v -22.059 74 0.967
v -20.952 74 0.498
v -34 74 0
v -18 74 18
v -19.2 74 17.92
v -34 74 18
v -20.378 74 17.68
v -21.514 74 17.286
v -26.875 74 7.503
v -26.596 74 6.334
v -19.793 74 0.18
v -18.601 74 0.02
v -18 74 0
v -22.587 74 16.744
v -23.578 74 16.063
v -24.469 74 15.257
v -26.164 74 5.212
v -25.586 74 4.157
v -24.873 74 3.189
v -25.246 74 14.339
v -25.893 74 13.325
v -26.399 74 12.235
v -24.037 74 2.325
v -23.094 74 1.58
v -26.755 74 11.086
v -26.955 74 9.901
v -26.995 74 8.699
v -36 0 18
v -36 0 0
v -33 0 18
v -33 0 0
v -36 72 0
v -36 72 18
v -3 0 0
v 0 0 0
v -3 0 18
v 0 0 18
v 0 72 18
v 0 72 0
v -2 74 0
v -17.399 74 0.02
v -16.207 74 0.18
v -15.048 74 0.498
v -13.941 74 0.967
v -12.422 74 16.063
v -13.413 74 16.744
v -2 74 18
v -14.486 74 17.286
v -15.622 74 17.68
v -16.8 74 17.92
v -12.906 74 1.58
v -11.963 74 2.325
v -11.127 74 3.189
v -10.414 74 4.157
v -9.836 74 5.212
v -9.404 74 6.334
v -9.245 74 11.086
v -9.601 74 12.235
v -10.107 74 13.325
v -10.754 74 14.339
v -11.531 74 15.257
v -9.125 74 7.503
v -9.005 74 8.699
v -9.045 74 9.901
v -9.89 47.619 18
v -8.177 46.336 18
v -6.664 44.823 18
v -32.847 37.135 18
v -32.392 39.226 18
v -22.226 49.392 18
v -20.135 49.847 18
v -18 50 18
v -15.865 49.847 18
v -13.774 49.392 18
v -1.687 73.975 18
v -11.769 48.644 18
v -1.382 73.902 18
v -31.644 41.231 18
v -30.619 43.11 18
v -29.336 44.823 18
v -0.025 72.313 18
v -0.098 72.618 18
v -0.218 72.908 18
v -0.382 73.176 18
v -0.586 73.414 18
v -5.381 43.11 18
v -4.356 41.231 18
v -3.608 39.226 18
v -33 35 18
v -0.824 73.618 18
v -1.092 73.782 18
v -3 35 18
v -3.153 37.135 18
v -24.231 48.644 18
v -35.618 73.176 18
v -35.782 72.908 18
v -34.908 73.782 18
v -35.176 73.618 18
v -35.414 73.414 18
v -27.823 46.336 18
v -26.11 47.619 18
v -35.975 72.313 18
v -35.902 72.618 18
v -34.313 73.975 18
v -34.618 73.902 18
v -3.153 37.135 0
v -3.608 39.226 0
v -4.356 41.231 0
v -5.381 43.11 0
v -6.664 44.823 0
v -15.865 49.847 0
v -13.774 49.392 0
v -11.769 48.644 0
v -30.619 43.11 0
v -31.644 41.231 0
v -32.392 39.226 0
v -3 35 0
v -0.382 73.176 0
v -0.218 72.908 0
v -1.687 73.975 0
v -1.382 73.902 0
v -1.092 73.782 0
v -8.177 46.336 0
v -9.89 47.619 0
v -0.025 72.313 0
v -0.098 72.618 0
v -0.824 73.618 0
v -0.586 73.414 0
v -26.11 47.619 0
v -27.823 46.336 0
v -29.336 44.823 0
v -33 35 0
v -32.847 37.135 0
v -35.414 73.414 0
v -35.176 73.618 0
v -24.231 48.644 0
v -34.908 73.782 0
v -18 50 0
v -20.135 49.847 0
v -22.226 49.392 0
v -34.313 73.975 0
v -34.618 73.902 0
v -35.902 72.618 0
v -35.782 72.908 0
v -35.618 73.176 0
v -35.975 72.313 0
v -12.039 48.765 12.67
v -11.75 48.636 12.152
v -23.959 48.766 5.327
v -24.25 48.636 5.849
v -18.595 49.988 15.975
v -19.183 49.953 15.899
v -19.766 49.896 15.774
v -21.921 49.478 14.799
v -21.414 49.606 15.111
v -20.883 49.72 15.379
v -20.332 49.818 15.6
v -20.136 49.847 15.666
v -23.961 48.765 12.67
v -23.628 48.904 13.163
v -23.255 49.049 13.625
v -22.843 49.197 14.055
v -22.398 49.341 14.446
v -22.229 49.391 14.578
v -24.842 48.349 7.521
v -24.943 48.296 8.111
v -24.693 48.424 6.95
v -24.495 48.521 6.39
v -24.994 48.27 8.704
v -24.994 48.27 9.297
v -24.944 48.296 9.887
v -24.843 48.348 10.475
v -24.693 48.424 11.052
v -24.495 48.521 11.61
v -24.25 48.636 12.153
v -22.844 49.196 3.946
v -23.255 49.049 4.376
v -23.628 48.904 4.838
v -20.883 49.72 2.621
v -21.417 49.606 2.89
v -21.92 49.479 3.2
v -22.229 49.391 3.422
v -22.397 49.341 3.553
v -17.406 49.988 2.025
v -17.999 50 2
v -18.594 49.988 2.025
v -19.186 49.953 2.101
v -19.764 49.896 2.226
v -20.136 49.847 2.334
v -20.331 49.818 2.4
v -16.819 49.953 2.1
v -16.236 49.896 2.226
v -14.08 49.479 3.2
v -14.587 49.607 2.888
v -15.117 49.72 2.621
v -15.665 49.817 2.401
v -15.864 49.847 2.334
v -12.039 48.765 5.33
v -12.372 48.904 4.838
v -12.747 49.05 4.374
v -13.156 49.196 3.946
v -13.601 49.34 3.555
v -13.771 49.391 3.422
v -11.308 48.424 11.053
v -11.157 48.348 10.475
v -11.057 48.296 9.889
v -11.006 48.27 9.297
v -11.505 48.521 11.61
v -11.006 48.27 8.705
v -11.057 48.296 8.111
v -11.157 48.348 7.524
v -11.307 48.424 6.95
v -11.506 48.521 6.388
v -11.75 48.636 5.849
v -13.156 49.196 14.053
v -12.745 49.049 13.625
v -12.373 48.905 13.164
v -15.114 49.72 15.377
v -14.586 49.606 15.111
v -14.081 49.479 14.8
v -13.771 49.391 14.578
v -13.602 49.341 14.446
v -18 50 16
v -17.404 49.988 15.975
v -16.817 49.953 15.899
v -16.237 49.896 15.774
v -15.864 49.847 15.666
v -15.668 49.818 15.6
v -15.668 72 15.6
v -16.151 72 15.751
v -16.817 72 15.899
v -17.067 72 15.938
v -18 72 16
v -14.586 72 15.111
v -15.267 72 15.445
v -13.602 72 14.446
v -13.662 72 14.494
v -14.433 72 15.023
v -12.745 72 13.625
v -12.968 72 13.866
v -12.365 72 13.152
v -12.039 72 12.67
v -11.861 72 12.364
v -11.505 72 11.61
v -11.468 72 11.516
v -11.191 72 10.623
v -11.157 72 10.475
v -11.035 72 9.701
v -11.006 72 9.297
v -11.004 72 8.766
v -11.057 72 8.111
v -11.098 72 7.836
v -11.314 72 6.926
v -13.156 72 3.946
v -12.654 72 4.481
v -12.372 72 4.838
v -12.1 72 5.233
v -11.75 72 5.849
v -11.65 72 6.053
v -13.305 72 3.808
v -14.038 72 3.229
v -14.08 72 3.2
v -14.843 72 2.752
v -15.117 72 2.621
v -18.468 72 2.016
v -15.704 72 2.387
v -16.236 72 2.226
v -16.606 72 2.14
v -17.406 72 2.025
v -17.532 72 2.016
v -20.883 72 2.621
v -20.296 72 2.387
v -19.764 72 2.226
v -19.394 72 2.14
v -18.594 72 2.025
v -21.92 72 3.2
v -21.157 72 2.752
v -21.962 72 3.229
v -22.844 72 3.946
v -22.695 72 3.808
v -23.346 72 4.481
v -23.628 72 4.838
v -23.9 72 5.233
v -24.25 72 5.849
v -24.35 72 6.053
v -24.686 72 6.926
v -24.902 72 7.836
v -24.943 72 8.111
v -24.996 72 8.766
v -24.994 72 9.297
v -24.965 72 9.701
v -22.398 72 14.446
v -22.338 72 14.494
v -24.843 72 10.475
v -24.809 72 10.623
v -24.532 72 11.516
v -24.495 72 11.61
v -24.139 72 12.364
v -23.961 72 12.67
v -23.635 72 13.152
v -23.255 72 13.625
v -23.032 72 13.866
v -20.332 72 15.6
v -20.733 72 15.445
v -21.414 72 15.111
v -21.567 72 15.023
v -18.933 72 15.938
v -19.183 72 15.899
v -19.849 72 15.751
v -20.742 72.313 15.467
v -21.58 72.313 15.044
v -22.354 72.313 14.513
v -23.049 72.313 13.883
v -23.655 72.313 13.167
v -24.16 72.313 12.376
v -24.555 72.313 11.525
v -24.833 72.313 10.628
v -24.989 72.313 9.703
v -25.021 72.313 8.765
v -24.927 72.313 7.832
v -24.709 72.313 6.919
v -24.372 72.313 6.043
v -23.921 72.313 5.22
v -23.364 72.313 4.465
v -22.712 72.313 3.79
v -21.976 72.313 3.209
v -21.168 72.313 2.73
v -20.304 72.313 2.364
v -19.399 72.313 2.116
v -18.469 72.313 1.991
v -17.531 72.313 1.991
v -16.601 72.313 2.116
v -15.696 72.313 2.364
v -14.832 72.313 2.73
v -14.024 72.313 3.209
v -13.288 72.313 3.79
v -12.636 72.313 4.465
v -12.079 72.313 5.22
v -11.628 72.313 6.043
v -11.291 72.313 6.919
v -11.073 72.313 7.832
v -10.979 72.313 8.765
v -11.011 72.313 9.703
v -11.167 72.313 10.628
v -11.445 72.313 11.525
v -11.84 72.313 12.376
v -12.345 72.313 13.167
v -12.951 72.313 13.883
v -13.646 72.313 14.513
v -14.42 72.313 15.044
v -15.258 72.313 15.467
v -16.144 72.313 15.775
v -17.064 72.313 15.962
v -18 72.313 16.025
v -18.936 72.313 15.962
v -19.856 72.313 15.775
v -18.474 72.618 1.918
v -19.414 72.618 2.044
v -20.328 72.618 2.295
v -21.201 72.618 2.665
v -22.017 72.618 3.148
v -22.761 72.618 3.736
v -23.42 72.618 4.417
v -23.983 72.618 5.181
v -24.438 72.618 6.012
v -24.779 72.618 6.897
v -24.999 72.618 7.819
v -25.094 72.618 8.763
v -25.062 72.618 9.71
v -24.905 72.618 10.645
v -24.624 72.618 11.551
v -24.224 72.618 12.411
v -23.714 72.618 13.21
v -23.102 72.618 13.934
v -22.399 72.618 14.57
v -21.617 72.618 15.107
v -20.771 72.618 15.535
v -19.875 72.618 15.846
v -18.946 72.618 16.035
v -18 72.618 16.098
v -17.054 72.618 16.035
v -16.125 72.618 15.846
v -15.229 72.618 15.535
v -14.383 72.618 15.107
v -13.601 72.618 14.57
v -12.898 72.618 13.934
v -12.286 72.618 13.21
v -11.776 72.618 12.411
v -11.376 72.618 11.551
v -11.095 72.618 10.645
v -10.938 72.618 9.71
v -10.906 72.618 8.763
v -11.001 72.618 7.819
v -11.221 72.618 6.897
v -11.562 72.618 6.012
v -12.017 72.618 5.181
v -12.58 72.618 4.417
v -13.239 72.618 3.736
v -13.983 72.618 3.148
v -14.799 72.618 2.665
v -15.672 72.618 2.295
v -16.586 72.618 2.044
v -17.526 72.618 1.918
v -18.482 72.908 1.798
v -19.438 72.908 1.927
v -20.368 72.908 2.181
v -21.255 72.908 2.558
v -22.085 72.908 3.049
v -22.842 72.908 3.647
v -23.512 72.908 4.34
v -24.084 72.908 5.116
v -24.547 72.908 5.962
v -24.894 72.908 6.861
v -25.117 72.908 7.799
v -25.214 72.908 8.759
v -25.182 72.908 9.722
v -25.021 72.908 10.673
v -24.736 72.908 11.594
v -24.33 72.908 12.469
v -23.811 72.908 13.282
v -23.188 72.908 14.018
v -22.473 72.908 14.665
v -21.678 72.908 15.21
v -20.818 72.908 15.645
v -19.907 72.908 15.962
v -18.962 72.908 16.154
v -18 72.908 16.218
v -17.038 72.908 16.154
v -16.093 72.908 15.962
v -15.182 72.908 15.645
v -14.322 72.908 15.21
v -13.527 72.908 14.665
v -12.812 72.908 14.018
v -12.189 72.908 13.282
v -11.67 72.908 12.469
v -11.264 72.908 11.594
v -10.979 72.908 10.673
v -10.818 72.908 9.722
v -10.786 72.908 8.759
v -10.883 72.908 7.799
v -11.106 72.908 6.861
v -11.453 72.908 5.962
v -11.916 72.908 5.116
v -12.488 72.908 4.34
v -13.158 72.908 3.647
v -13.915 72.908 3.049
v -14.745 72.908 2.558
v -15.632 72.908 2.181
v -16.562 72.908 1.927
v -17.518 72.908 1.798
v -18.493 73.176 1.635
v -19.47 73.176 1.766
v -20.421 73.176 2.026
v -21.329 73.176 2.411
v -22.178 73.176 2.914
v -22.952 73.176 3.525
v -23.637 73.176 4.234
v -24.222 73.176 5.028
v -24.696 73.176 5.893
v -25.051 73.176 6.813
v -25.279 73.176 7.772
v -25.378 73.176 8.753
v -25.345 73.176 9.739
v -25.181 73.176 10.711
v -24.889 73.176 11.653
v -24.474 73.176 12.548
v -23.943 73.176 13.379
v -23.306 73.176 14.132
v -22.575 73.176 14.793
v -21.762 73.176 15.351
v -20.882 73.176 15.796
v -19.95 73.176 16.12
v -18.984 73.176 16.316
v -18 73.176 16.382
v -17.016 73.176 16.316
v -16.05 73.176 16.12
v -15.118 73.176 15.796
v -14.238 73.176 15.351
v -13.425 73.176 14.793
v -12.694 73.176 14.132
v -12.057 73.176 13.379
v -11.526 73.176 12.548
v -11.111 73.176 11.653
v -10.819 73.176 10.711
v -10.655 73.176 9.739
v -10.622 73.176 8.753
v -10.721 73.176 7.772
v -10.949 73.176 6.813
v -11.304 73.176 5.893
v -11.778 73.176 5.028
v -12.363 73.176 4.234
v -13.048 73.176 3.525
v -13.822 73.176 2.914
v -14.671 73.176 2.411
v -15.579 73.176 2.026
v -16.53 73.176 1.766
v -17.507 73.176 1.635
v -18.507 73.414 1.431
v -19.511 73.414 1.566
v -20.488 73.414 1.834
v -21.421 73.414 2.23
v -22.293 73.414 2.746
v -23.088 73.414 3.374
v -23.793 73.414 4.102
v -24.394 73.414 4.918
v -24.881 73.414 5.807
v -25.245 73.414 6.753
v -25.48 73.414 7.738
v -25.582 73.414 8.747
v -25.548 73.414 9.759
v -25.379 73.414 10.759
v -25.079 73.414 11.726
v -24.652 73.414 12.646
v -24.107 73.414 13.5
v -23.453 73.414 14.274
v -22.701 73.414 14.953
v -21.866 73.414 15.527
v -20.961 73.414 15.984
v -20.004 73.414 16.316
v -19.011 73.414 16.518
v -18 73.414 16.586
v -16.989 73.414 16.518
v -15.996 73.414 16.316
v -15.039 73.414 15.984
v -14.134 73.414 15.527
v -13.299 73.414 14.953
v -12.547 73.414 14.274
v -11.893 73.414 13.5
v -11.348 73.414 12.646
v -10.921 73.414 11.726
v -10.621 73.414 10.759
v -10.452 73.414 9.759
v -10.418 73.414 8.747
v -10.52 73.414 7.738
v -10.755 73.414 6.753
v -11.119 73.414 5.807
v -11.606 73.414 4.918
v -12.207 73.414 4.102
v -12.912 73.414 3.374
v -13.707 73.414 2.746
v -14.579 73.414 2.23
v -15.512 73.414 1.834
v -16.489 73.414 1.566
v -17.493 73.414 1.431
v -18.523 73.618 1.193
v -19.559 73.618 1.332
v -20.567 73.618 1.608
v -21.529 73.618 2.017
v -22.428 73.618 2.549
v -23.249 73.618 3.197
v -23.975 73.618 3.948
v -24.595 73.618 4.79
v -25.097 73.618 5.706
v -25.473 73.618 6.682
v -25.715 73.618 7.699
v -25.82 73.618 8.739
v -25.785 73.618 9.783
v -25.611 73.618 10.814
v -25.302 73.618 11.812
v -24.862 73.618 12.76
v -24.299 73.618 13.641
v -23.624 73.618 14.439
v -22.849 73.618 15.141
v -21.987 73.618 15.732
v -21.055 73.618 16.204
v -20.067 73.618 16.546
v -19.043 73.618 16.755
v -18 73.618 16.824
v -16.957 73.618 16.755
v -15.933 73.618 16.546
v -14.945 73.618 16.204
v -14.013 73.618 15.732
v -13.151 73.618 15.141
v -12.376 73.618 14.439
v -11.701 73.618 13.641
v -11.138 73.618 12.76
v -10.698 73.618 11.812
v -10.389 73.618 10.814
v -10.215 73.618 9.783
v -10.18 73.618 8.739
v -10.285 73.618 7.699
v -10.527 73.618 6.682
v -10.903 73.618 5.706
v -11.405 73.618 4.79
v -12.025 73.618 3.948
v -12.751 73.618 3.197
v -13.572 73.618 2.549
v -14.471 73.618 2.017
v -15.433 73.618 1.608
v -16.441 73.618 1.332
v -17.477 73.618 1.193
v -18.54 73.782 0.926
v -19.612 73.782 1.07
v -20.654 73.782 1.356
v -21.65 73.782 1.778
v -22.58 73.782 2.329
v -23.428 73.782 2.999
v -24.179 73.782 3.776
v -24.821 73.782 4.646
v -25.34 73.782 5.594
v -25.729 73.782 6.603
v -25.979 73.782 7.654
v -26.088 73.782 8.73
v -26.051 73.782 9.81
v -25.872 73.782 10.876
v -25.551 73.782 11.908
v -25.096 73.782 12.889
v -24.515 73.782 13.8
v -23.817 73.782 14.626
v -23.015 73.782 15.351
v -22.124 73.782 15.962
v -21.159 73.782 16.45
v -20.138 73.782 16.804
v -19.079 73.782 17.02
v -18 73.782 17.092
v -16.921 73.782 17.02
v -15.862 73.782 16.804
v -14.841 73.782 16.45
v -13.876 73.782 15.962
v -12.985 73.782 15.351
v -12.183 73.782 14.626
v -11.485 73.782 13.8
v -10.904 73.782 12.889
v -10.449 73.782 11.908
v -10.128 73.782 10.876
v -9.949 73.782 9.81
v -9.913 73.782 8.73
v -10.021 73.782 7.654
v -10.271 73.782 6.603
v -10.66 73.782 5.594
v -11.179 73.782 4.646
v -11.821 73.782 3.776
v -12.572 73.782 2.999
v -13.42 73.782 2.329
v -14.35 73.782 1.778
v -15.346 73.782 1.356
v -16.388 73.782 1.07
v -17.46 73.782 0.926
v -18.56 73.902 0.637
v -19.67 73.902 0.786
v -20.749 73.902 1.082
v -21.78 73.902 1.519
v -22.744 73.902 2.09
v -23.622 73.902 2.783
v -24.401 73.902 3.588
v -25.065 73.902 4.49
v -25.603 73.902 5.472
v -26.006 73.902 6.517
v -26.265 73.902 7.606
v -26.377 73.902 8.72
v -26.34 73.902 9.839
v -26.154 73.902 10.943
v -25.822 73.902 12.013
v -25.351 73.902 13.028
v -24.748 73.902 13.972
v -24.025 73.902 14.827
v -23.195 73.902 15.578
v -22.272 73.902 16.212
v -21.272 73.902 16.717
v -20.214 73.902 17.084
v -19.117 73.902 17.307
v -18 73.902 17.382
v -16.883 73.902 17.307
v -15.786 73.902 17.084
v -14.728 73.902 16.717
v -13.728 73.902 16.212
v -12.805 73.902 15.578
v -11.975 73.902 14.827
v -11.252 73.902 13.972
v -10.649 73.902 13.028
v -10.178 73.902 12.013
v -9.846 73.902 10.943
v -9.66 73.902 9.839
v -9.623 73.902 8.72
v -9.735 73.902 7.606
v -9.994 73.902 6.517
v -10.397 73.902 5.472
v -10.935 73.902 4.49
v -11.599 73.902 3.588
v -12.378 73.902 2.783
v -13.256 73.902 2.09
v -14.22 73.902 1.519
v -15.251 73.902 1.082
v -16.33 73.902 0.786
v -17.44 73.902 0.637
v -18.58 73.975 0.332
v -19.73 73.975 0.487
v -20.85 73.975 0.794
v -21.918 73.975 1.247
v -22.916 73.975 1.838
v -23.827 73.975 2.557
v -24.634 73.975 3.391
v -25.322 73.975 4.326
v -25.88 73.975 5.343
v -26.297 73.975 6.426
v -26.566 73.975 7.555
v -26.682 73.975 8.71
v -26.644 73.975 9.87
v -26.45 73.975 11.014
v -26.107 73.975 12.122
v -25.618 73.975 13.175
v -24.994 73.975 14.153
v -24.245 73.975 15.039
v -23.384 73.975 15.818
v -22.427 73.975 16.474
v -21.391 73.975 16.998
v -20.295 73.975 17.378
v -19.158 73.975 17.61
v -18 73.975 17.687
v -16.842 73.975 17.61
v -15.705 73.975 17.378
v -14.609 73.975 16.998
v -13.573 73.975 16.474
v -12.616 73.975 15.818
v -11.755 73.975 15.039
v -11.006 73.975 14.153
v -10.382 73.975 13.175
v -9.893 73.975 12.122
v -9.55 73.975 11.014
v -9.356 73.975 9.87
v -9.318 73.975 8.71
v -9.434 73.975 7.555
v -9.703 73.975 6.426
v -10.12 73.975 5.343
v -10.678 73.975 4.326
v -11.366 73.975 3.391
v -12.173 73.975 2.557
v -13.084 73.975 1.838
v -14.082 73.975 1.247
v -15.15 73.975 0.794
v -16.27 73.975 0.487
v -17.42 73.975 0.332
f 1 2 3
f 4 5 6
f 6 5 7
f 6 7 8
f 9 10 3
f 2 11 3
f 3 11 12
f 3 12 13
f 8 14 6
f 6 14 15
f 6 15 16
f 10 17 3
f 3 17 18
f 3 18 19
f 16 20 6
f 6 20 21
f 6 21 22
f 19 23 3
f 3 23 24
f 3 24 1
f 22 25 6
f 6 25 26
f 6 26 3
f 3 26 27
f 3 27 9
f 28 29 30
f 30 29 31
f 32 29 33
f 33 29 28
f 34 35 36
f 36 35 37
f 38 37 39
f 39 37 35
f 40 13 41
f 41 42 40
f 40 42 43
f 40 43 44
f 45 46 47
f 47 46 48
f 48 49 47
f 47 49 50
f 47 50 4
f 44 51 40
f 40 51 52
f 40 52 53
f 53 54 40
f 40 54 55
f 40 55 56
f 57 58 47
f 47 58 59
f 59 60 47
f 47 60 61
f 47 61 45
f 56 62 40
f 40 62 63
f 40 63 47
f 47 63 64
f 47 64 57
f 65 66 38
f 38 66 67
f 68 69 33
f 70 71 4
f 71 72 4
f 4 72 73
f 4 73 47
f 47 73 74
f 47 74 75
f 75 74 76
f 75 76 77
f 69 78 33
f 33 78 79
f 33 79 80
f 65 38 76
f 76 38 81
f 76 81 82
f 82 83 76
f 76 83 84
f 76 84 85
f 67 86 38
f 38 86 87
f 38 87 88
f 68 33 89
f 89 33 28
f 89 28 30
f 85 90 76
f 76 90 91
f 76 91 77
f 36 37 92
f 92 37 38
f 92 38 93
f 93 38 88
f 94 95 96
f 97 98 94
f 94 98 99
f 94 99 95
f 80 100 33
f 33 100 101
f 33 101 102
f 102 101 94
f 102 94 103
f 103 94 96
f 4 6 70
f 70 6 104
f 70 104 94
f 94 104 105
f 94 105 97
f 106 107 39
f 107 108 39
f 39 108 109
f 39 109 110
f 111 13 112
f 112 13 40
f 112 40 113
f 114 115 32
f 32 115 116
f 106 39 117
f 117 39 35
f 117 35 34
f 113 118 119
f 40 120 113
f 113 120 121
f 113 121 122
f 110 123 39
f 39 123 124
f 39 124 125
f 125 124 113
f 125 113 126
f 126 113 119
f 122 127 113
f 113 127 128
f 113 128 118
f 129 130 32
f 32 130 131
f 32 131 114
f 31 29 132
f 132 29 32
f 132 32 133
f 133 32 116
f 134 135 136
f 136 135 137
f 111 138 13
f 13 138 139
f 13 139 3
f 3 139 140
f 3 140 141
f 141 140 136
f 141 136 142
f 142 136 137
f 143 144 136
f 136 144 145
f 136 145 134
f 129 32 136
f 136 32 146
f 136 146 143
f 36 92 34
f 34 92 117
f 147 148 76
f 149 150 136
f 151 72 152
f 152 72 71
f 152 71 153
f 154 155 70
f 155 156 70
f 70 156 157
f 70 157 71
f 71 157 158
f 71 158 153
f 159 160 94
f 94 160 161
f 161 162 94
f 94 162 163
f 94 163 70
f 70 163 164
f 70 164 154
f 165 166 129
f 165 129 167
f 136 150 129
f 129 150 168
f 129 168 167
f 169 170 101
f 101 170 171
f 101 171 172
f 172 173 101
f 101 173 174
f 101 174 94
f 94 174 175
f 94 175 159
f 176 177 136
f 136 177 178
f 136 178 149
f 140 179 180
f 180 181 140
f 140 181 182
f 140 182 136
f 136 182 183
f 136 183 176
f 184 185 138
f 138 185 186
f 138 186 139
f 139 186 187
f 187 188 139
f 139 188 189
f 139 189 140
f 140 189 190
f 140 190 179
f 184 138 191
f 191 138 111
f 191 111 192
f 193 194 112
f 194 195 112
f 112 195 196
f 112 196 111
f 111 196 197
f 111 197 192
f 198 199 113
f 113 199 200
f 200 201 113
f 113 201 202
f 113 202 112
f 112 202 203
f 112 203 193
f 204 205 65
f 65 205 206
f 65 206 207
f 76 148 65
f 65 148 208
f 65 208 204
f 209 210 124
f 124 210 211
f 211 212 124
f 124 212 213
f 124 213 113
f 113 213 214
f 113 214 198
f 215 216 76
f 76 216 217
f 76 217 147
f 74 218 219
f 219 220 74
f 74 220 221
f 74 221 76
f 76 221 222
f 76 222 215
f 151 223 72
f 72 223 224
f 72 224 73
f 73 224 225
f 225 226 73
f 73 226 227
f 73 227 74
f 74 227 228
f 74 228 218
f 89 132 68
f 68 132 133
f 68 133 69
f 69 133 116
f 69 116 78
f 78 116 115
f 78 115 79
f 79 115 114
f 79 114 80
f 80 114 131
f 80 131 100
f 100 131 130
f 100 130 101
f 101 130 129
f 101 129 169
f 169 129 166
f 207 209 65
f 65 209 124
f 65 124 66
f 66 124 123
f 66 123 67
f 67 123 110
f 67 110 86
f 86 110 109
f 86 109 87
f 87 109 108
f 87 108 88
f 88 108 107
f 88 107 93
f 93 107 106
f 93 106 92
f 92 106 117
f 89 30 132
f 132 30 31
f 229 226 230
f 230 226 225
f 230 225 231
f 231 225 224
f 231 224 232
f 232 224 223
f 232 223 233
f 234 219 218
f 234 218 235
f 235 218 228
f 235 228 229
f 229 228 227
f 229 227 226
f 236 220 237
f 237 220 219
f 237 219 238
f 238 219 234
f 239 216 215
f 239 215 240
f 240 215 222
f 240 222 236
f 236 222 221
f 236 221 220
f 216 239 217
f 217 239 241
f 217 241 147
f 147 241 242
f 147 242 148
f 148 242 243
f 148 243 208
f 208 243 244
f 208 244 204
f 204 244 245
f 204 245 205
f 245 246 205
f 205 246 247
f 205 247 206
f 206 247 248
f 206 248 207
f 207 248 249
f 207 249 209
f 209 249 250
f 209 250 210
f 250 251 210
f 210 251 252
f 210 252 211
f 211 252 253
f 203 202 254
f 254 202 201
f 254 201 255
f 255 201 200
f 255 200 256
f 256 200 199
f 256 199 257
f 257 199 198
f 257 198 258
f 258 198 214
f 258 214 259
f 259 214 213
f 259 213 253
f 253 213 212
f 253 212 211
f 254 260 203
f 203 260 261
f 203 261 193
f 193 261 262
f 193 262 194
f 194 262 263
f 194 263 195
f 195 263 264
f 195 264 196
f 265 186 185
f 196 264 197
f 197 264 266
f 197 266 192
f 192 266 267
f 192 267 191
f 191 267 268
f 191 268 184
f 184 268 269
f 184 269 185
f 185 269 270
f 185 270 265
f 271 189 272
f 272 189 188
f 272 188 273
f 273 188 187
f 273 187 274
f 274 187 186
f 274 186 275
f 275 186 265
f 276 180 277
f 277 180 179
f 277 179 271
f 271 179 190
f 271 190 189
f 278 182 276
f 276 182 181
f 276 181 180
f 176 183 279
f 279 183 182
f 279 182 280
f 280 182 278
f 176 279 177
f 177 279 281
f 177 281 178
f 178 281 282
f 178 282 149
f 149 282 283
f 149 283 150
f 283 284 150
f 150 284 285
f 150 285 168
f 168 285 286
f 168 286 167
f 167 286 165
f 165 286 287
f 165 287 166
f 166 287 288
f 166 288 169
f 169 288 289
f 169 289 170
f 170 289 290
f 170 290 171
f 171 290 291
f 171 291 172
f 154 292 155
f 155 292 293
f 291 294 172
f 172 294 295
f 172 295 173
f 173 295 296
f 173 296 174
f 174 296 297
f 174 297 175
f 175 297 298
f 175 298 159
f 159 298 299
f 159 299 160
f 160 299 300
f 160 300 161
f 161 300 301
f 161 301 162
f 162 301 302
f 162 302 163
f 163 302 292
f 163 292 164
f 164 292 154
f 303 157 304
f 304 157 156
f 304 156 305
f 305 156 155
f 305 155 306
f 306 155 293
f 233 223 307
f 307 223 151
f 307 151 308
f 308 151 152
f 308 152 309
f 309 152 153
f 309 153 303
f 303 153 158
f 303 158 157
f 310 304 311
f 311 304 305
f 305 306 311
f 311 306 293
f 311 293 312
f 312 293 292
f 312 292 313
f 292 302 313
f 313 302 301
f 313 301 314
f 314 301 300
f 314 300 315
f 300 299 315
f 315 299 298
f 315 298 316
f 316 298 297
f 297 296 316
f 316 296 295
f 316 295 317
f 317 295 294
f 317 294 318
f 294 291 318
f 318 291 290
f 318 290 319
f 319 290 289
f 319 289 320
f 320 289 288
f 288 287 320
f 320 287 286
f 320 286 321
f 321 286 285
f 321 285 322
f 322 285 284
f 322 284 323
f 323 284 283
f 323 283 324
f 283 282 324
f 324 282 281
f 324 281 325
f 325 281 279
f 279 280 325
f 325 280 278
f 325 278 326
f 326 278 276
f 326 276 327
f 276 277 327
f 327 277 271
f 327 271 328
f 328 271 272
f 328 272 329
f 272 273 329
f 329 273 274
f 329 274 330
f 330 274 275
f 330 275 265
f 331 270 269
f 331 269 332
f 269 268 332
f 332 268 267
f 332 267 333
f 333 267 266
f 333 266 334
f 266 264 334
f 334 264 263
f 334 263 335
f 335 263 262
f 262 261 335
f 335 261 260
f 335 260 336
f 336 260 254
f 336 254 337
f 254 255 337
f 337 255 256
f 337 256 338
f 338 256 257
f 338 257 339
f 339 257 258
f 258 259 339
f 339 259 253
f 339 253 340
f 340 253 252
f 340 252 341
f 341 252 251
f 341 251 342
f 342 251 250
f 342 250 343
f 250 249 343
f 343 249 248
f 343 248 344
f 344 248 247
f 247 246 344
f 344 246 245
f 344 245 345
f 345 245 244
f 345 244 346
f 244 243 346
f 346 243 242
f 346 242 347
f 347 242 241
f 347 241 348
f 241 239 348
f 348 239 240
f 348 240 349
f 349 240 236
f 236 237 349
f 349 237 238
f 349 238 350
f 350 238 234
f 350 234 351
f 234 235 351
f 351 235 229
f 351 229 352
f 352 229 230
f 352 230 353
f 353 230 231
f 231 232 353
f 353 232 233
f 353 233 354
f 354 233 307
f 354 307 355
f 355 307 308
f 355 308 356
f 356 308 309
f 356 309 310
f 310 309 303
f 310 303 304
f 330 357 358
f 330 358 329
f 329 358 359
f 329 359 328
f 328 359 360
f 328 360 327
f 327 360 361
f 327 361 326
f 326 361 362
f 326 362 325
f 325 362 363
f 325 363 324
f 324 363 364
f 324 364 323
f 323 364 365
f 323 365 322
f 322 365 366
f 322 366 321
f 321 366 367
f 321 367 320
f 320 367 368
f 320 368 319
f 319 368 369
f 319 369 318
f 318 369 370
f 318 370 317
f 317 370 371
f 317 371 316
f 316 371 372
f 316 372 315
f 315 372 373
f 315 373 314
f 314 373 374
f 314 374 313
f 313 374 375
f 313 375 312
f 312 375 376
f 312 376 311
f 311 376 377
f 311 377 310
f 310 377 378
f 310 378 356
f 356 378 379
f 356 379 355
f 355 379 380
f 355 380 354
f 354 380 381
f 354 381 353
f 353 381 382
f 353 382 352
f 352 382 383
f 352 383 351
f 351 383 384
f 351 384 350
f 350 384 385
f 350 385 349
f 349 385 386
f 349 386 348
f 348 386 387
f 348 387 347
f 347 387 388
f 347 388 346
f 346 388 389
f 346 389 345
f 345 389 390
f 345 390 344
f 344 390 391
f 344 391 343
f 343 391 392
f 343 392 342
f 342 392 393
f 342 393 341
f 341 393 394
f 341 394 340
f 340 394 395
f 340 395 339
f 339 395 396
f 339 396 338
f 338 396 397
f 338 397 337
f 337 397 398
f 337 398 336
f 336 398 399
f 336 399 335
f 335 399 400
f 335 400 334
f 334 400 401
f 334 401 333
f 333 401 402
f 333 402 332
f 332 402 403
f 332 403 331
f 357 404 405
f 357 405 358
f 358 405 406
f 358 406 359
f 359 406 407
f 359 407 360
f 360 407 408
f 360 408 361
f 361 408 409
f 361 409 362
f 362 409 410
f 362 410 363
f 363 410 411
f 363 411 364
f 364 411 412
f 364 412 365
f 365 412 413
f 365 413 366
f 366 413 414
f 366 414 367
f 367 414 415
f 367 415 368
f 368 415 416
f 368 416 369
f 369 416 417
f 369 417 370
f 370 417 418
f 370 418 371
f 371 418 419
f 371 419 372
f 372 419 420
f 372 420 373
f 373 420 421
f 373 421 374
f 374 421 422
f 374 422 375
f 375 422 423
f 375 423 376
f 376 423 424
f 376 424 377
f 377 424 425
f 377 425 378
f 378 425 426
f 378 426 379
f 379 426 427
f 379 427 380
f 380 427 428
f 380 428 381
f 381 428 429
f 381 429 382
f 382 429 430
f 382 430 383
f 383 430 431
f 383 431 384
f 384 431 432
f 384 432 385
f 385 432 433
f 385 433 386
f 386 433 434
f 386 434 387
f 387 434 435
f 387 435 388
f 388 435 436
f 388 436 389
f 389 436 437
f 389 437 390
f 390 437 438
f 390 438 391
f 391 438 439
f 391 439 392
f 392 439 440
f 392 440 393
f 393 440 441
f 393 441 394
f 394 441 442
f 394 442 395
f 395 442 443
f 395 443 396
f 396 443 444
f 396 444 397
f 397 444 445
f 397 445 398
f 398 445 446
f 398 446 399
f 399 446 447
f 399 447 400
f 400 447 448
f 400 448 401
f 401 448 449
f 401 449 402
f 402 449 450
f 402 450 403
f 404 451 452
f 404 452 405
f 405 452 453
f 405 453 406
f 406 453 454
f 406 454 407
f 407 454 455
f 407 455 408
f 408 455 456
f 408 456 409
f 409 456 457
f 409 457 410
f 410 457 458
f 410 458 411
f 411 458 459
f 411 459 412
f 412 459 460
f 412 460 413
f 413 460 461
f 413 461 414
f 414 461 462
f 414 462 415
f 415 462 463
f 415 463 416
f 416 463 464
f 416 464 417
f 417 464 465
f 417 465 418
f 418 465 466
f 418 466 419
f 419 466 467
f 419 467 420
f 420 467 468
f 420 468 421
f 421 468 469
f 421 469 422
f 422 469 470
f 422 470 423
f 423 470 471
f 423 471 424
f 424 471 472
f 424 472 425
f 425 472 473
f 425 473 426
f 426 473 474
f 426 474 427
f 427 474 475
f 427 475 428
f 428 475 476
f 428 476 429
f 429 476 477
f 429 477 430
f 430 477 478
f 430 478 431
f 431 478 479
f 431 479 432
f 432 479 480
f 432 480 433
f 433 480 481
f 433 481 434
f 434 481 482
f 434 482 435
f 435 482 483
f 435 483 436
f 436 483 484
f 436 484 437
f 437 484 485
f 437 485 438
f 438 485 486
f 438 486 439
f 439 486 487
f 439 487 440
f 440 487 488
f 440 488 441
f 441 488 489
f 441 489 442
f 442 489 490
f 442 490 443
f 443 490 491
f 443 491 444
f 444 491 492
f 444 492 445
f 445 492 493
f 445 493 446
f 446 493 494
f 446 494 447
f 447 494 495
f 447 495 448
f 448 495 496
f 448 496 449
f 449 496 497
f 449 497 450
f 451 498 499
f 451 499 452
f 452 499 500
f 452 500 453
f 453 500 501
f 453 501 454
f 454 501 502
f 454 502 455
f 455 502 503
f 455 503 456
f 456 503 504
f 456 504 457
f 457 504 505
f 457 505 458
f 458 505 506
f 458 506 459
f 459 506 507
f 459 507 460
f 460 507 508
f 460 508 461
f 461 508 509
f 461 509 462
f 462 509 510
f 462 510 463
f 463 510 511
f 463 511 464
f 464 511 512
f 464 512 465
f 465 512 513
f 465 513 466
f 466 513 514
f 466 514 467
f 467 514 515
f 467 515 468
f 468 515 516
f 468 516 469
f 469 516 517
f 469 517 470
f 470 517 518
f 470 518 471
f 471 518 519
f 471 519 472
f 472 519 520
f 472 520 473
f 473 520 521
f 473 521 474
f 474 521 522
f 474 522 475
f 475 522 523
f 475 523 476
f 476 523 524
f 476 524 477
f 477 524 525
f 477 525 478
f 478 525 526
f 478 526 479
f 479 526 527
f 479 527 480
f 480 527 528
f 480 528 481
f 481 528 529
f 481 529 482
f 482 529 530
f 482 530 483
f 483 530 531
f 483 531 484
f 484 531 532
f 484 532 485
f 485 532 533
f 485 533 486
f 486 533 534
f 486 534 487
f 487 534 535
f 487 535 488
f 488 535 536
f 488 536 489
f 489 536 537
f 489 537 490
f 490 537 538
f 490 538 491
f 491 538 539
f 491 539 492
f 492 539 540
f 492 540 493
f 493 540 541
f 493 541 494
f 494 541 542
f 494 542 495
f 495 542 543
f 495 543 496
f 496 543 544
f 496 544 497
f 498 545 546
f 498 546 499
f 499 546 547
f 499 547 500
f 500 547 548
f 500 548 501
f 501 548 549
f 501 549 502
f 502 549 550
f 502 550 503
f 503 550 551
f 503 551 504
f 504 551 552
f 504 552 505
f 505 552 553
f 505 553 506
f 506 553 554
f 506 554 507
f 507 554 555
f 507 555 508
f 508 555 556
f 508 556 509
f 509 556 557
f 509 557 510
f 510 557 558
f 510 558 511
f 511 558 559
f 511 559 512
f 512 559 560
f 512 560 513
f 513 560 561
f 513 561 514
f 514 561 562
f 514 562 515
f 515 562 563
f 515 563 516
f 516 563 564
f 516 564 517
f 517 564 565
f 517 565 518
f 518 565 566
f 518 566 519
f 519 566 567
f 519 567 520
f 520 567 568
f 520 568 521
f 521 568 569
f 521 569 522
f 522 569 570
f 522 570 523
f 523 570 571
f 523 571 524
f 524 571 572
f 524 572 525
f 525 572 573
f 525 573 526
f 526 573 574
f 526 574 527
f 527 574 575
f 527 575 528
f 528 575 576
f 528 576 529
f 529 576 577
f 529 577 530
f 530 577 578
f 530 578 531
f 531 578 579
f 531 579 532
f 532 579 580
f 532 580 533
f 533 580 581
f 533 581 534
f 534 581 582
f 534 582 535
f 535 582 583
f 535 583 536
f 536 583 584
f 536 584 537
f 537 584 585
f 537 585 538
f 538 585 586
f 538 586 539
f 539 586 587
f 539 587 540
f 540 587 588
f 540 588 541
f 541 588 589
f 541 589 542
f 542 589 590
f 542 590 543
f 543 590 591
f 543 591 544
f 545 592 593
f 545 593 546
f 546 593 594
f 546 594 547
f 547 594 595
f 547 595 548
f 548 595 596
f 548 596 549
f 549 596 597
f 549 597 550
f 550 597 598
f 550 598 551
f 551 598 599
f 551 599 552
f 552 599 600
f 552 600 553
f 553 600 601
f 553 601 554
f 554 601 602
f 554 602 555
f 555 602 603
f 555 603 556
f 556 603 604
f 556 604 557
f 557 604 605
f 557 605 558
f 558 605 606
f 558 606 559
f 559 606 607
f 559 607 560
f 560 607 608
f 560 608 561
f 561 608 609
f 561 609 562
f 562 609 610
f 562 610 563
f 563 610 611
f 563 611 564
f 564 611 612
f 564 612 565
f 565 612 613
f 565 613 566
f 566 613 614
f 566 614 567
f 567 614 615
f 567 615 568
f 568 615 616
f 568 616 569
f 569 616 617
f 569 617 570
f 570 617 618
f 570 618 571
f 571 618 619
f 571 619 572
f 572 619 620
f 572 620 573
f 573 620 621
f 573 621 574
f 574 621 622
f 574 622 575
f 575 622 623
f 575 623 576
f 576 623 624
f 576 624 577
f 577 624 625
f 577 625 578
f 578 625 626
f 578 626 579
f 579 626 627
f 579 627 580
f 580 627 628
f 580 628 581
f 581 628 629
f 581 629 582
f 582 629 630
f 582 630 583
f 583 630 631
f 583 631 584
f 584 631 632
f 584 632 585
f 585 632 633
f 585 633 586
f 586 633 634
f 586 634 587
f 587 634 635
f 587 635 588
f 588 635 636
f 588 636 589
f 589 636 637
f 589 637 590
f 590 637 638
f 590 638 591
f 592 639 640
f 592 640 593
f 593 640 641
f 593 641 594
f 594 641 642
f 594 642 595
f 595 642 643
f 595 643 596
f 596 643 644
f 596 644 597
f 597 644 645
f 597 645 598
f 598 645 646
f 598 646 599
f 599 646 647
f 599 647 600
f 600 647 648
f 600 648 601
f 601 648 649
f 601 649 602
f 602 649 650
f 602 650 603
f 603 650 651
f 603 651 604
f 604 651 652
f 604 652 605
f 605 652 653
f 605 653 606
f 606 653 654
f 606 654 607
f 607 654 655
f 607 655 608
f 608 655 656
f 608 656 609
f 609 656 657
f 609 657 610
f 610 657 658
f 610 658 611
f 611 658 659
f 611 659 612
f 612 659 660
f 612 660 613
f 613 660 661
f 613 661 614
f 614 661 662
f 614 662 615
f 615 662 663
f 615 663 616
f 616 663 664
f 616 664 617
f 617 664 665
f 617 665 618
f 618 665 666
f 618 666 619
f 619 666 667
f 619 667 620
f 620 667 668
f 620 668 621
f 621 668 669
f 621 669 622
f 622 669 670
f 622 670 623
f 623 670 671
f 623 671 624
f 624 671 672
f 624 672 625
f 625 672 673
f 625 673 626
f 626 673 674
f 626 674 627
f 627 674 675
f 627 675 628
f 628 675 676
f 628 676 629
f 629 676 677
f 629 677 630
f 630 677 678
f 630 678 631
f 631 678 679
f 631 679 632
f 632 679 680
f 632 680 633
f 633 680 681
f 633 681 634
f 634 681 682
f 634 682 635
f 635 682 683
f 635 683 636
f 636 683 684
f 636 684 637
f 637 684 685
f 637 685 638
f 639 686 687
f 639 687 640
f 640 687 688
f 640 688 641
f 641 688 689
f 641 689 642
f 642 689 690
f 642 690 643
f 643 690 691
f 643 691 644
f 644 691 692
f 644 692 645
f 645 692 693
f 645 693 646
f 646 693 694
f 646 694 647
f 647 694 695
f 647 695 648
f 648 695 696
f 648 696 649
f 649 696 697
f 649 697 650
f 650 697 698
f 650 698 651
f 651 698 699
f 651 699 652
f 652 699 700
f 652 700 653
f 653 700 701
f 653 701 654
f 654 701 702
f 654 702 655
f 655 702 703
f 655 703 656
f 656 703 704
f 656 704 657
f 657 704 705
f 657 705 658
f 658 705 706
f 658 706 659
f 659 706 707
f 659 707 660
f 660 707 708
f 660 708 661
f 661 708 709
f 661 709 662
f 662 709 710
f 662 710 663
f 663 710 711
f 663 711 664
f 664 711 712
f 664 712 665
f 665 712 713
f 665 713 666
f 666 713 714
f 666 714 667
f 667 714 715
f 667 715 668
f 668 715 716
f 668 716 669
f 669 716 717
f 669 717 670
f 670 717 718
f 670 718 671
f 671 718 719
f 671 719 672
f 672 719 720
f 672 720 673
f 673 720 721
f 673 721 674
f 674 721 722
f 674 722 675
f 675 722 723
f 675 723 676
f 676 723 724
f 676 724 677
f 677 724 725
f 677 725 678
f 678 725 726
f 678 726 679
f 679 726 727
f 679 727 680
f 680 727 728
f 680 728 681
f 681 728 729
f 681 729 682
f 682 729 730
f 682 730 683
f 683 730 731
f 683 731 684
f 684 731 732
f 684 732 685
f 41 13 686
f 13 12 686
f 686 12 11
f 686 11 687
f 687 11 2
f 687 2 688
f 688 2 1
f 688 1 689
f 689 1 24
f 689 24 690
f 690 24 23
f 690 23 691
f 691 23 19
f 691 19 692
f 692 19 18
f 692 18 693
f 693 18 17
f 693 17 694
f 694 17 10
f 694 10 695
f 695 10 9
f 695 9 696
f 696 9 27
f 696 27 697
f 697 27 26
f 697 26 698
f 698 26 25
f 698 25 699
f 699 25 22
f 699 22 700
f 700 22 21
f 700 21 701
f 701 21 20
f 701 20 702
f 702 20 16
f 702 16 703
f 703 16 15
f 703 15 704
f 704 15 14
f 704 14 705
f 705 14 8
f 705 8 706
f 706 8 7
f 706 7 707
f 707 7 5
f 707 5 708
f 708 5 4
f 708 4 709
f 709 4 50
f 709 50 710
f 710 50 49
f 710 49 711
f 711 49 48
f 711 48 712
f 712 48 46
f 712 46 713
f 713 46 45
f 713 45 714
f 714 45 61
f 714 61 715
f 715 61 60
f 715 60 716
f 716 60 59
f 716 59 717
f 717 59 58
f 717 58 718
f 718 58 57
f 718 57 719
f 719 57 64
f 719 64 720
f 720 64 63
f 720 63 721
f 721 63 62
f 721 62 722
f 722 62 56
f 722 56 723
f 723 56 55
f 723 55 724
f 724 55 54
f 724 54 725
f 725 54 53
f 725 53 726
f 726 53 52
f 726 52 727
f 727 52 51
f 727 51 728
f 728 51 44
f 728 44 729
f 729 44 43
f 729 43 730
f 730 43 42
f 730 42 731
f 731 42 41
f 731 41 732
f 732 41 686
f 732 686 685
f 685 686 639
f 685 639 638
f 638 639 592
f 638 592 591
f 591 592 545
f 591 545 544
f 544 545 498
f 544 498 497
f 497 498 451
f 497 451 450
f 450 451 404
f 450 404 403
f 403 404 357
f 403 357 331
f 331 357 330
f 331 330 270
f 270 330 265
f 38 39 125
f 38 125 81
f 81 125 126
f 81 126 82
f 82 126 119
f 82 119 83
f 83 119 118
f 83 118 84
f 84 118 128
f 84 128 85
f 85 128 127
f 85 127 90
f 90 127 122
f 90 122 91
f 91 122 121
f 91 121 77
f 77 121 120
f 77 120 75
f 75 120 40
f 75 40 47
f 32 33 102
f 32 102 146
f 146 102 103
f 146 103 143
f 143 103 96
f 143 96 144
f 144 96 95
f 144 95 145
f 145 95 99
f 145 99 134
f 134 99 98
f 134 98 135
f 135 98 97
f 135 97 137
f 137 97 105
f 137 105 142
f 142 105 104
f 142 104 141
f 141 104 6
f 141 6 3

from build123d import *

# Parameters (mm, degrees)
BOSS_EXTRUDE1_DEPTH     = 18
CUT_EXTRUDE1_REACH      = 86.238
CUT_EXTRUDE1_END_RADIUS = 15
SKETCH3_R               = 7
FILLET1_R               = 2
FILLET2_R               = 2


with BuildPart() as part:
    # Sketch2 → Boss-Extrude1 (new body)
    with BuildSketch(Plane.XY):
        with BuildLine():
            Line((-33.38706816, 74), (-36, 74))
            Line((-36, 74), (-36, 0))
            Line((-36, 0), (-33, 0))
            Line((-33, 0), (-33, 35))
            ThreePointArc((-33, 35), (-18, 50), (-3, 35))
            Line((-3, 35), (-3, 0))
            Line((-3, 0), (0, 0))
            Line((0, 0), (0, 74))
            Line((0, 74), (-12.61679677, 74))
            Line((-12.61679677, 74), (-33.38706816, 74))
        make_face()
    extrude(amount=BOSS_EXTRUDE1_DEPTH)

    # Cut-Extrude1: up to this cylinder (the profile starts outside it)
    cut_extrude1_end = Plane(origin=(-18, 35, 9), z_dir=(0, 0, -1)) * Cylinder(CUT_EXTRUDE1_END_RADIUS, 203.476, mode=Mode.PRIVATE)
    # Sketch3 → Cut-Extrude1 (cut, up to the surface)
    with BuildSketch(Plane(origin=(0, 74, 0), x_dir=(1, 0, 0), z_dir=(0, 1, 0)), mode=Mode.PRIVATE) as cut_extrude1_sk1:
        with Locations(Location((-18, -9, 0), (0, 0, 270))):
            Circle(SKETCH3_R)
    cut_extrude1_tool1 = extrude(cut_extrude1_sk1.sketch, amount=-CUT_EXTRUDE1_REACH, mode=Mode.PRIVATE) - cut_extrude1_end
    add(cut_extrude1_tool1.solids().sort_by_distance((-18, 74, 9))[0], mode=Mode.SUBTRACT)

    # Fillet1
    fillet1_edges = [part.edges().sort_by_distance(p)[0] for p in [
        (-18, 74, 2),
    ]]
    fillet(fillet1_edges, radius=FILLET1_R - 0.0001)  # a hair under: the kernel refuses the full size

    # Fillet2
    fillet2_edges = [part.edges().sort_by_distance(p)[0] for p in [
        (-36, 74, 9),
        (0, 74, 9),
    ]]
    fillet(fillet2_edges, radius=FILLET2_R)


solid = part.part
